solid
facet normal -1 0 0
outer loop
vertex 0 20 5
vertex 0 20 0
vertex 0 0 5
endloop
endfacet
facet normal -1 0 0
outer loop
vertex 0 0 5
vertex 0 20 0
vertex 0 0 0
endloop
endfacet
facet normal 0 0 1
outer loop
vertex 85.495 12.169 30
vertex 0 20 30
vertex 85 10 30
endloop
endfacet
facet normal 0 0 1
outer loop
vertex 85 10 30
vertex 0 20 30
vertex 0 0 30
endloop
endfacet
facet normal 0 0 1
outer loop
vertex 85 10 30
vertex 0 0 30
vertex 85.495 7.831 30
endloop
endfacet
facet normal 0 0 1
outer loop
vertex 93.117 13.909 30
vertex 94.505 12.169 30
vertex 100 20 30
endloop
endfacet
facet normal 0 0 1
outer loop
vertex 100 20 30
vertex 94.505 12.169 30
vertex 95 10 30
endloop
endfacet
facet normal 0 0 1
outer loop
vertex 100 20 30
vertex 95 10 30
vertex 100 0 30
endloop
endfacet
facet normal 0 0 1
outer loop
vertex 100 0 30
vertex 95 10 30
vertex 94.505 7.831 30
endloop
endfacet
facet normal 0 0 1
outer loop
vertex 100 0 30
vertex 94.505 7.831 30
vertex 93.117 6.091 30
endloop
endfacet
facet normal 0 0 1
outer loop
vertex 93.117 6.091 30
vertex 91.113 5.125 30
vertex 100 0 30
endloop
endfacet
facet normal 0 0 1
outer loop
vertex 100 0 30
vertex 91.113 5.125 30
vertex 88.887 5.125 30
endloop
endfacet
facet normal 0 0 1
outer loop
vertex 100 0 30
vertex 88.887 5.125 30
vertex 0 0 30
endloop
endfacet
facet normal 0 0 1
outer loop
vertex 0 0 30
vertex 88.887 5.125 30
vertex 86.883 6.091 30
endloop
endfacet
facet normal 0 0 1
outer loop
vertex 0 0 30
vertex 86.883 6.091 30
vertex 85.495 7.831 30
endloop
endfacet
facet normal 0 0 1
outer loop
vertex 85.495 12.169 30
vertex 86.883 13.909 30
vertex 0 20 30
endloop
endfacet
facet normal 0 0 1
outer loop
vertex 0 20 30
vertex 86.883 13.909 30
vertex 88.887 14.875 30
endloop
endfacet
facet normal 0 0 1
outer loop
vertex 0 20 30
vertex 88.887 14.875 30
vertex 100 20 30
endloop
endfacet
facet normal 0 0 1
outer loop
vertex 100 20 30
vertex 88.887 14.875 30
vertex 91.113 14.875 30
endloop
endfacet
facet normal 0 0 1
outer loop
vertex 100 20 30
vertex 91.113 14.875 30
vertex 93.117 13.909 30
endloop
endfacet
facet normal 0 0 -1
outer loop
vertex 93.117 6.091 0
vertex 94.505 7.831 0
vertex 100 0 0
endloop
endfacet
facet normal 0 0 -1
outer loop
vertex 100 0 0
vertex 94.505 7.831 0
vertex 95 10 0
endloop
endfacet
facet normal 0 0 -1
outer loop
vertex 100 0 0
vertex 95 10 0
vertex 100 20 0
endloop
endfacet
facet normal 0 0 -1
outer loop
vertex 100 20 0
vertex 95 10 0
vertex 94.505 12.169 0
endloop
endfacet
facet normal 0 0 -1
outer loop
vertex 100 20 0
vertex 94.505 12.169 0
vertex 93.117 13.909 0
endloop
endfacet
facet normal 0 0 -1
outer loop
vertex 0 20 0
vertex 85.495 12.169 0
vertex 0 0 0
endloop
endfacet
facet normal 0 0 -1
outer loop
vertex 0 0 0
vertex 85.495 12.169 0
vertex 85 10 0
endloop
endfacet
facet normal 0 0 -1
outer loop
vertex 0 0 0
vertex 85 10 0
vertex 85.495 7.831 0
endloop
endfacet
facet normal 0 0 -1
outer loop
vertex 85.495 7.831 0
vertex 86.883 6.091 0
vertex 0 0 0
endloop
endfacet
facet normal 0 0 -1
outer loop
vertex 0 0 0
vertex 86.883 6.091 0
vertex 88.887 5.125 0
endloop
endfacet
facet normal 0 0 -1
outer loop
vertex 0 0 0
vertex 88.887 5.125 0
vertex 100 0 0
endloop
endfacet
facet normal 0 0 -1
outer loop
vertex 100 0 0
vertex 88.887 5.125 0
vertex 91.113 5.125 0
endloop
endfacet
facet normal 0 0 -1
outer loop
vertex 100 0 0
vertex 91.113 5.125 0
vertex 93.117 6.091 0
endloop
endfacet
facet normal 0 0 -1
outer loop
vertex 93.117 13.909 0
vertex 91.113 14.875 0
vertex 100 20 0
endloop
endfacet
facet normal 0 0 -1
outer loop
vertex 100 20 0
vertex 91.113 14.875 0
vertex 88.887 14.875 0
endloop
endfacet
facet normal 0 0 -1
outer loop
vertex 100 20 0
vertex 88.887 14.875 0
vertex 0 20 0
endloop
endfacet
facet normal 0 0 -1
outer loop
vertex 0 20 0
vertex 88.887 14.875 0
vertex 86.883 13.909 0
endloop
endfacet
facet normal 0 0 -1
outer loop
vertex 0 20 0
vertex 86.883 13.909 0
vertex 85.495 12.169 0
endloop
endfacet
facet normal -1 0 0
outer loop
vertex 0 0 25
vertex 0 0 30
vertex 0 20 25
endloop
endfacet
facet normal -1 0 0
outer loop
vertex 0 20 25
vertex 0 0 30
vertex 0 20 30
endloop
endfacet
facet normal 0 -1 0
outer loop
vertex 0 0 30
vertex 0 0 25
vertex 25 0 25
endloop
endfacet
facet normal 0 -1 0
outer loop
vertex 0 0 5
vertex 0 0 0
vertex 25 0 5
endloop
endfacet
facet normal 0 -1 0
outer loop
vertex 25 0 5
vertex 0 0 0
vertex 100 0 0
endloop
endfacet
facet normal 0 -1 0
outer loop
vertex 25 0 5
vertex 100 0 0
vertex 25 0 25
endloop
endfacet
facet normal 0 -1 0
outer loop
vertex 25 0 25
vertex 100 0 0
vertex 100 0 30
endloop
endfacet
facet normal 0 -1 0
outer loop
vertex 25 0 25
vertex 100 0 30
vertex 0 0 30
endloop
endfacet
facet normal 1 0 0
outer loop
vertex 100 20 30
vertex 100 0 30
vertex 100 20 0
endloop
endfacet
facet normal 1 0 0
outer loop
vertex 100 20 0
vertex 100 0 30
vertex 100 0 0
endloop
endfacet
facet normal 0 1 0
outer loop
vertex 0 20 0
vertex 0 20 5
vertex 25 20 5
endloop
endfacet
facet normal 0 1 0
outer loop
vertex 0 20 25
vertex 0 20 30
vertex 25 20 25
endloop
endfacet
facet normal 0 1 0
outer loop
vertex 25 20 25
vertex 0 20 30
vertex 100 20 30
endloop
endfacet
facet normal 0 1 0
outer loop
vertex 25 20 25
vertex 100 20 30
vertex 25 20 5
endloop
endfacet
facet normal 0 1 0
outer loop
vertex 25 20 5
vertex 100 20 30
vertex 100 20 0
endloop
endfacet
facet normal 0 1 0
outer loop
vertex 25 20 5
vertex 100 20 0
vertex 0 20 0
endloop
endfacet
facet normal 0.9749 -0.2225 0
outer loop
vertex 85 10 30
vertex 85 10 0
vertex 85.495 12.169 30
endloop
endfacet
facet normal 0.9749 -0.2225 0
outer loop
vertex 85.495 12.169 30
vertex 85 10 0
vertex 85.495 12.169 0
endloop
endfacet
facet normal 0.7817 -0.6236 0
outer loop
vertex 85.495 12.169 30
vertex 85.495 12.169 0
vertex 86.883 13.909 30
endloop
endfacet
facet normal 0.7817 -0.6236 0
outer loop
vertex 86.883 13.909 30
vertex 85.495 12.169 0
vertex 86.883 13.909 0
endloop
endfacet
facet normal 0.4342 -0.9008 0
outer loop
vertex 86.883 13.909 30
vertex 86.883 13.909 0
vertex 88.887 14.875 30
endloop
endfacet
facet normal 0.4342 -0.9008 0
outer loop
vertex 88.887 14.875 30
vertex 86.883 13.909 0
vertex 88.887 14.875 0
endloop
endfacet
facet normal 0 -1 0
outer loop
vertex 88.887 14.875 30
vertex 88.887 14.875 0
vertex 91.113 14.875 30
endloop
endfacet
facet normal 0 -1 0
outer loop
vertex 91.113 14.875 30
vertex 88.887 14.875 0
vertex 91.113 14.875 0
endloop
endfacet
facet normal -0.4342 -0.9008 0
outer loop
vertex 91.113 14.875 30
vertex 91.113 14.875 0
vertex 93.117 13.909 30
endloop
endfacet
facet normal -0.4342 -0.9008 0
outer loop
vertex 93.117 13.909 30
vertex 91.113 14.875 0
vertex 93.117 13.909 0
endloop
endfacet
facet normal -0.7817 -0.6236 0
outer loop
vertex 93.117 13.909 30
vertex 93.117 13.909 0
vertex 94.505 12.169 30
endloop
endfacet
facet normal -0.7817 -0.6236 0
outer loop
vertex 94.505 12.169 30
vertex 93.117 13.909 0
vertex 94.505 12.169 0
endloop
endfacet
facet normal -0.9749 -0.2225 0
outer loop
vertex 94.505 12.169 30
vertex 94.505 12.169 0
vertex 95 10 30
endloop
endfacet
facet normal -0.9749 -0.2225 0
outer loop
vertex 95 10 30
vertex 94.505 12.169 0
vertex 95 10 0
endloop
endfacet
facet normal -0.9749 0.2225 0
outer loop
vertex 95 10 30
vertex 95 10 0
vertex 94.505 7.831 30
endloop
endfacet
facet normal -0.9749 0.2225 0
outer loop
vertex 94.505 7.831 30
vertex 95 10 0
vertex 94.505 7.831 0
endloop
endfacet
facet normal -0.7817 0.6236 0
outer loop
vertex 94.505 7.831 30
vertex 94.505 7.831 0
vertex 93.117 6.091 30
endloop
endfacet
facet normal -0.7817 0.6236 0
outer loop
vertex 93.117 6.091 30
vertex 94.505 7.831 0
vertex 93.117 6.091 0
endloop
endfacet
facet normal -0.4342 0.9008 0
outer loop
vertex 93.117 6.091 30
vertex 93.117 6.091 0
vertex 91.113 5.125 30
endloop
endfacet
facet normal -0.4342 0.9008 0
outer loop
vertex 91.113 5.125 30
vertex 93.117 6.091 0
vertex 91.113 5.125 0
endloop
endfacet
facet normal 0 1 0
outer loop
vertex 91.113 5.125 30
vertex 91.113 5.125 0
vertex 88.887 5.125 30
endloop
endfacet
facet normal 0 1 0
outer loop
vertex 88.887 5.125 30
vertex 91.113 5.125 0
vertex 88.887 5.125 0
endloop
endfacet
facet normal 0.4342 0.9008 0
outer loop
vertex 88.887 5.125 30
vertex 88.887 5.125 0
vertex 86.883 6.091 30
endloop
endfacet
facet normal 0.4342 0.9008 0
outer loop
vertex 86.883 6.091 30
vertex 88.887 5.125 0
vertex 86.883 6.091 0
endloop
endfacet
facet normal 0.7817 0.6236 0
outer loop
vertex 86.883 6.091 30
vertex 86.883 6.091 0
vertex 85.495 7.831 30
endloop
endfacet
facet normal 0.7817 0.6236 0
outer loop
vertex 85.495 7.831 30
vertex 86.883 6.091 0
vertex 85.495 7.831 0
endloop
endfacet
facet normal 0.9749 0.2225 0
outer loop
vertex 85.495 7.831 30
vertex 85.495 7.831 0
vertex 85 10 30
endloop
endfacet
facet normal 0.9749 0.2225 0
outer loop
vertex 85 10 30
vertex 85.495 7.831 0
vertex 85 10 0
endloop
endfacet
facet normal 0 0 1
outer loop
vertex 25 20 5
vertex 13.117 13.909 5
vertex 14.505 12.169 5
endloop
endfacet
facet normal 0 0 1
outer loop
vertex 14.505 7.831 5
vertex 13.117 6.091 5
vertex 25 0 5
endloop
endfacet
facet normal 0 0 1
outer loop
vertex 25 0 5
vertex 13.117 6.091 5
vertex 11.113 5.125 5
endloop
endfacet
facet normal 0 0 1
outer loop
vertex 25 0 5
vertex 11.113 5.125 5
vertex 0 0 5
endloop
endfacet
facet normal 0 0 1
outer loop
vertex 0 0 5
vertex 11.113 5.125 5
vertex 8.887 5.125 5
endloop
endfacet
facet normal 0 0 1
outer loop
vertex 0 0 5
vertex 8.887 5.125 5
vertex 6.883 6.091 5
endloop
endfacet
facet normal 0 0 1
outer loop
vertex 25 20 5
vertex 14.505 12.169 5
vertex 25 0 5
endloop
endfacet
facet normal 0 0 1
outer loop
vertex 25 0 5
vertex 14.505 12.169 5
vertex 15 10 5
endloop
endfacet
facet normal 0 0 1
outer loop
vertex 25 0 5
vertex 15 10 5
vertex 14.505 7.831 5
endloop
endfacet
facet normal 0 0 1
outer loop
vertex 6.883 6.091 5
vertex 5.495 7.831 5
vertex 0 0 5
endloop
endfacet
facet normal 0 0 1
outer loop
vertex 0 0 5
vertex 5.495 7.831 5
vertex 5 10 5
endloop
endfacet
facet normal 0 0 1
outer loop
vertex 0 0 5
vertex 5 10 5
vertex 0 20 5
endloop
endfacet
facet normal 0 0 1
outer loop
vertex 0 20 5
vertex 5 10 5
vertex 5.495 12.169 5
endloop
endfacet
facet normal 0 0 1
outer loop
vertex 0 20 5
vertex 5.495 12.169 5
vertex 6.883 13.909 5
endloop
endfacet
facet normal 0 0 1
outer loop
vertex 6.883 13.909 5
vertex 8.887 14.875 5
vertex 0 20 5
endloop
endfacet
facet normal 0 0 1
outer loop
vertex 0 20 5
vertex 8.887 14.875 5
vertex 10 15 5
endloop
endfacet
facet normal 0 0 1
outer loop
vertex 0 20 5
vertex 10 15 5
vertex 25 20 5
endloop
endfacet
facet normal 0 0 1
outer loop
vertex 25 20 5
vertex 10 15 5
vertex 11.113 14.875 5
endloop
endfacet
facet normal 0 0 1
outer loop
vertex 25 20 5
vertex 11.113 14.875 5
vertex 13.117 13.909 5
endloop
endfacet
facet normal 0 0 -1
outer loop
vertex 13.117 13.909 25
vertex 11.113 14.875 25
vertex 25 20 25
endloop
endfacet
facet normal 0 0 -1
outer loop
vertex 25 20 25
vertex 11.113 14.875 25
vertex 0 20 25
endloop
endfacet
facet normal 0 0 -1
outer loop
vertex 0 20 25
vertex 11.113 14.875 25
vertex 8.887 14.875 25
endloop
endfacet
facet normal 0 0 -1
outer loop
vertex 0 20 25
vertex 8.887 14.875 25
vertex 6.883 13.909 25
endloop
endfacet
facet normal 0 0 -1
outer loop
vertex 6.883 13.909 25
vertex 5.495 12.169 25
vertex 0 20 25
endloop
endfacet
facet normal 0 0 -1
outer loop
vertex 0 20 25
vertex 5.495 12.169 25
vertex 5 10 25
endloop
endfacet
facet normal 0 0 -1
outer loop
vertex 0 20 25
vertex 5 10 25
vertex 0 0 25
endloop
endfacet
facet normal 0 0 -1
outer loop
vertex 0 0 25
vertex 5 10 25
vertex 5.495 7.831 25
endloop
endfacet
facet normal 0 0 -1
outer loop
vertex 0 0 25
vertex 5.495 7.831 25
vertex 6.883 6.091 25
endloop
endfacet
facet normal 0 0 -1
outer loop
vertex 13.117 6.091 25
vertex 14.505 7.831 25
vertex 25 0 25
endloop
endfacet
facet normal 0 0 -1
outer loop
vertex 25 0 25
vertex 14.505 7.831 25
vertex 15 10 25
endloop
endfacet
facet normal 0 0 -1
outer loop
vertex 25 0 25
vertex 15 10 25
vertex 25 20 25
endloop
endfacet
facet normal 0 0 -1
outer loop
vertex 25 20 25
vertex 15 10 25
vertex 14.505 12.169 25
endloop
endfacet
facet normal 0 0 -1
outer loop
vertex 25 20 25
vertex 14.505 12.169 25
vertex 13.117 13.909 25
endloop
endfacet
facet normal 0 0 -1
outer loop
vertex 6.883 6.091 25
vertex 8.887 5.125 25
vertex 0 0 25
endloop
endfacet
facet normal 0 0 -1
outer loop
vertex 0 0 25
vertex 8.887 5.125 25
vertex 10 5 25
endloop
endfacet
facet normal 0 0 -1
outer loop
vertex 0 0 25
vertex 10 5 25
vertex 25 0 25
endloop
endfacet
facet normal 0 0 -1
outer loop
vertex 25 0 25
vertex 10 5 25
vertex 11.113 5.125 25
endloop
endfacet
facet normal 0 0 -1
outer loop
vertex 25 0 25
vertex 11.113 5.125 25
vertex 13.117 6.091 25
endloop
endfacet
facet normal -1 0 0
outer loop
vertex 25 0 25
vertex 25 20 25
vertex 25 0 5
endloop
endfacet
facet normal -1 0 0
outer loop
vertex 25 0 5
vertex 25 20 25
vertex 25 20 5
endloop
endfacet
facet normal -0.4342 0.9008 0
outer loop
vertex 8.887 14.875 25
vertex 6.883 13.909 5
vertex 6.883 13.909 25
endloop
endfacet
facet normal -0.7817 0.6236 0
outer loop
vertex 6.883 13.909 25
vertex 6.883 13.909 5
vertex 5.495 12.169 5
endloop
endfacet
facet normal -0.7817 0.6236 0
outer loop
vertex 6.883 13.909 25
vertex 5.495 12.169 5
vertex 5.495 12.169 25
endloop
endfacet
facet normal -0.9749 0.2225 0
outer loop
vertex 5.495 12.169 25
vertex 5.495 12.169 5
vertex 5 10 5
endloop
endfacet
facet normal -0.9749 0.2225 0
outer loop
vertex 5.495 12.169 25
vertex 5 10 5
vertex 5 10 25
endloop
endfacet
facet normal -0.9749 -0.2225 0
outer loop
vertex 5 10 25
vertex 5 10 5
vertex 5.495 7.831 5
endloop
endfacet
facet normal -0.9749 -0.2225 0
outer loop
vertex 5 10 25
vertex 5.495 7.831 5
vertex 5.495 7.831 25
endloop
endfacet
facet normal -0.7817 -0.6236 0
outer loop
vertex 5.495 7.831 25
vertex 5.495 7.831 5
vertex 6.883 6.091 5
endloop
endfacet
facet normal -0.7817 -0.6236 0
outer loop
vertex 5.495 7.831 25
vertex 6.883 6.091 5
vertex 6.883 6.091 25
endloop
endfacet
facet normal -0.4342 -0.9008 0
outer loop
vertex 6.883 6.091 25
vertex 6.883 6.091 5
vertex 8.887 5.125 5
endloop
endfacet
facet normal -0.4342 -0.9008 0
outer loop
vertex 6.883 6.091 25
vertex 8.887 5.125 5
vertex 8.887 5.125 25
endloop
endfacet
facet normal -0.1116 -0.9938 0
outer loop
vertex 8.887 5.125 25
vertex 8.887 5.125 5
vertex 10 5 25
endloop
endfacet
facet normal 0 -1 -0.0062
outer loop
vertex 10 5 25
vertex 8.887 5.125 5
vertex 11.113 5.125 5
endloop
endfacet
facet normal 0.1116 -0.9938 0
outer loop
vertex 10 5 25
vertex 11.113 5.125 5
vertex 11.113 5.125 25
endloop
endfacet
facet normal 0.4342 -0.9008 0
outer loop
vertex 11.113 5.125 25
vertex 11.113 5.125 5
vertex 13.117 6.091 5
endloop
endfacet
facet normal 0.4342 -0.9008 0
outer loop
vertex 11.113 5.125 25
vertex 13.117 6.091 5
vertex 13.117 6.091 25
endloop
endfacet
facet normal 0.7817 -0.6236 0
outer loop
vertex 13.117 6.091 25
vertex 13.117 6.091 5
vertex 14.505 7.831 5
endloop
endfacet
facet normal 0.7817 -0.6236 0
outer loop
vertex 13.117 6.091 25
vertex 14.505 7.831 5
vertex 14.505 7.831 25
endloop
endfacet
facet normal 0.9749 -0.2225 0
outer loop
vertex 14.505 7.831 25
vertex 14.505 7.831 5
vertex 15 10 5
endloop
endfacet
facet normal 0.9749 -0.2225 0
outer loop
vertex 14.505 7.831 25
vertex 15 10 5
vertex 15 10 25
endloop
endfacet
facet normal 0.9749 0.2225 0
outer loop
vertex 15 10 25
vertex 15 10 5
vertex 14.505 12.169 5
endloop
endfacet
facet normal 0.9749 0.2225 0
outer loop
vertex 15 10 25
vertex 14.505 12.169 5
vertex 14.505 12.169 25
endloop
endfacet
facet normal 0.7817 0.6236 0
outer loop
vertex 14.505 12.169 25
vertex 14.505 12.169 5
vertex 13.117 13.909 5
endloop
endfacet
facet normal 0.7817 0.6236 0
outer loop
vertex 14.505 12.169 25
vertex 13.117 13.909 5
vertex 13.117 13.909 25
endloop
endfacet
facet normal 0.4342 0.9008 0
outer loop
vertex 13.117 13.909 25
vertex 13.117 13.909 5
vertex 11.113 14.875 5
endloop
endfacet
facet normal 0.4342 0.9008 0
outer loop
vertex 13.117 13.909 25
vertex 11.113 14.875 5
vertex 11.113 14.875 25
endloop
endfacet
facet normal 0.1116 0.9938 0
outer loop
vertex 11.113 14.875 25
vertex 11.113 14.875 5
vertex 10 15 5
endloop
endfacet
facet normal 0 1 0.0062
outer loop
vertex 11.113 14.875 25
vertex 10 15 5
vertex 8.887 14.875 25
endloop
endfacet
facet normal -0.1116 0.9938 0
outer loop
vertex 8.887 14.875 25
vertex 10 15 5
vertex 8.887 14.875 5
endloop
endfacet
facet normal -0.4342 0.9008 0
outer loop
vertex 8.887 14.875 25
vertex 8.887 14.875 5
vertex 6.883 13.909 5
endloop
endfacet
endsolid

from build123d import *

# Parameters (mm, degrees)
SKETCH1_W           = 100
SKETCH1_H           = 20
SKETCH1_R           = 5
BOSS_EXTRUDE1_DEPTH = 30
SKETCH4_W           = 20
SKETCH4_H           = 20
CUT_EXTRUDE1_DEPTH  = 25
BOSS_EXTRUDE2_REACH = 108.301
SKETCH5_R           = 5


with BuildPart() as part:
    # Sketch1 → Boss-Extrude1 (new body)
    with BuildSketch(Plane.XY):
        with Locations((50, 10)):
            Rectangle(SKETCH1_W, SKETCH1_H)
        with Locations((90, 10)):
            Circle(SKETCH1_R, mode=Mode.SUBTRACT)
    extrude(amount=BOSS_EXTRUDE1_DEPTH)

    # Sketch4 → Cut-Extrude1 (cut)
    with BuildSketch(Plane.ZY):
        with Locations((15, 10)):
            Rectangle(SKETCH4_W, SKETCH4_H)
    extrude(amount=-CUT_EXTRUDE1_DEPTH, mode=Mode.SUBTRACT)

    # Sketch5 → Boss-Extrude2 (add, up to next)
    with BuildSketch(Plane.XY.offset(30), mode=Mode.PRIVATE) as boss_extrude2_sk1:
        with Locations(Location((10, 10, 0), (0, 0, 270))):
            Circle(SKETCH5_R)
    boss_extrude2_tool1 = extrude(boss_extrude2_sk1.sketch, amount=-BOSS_EXTRUDE2_REACH, mode=Mode.PRIVATE) - part.part
    add(boss_extrude2_tool1.solids().sort_by_distance((10, 10, 30))[0])


solid = part.part
